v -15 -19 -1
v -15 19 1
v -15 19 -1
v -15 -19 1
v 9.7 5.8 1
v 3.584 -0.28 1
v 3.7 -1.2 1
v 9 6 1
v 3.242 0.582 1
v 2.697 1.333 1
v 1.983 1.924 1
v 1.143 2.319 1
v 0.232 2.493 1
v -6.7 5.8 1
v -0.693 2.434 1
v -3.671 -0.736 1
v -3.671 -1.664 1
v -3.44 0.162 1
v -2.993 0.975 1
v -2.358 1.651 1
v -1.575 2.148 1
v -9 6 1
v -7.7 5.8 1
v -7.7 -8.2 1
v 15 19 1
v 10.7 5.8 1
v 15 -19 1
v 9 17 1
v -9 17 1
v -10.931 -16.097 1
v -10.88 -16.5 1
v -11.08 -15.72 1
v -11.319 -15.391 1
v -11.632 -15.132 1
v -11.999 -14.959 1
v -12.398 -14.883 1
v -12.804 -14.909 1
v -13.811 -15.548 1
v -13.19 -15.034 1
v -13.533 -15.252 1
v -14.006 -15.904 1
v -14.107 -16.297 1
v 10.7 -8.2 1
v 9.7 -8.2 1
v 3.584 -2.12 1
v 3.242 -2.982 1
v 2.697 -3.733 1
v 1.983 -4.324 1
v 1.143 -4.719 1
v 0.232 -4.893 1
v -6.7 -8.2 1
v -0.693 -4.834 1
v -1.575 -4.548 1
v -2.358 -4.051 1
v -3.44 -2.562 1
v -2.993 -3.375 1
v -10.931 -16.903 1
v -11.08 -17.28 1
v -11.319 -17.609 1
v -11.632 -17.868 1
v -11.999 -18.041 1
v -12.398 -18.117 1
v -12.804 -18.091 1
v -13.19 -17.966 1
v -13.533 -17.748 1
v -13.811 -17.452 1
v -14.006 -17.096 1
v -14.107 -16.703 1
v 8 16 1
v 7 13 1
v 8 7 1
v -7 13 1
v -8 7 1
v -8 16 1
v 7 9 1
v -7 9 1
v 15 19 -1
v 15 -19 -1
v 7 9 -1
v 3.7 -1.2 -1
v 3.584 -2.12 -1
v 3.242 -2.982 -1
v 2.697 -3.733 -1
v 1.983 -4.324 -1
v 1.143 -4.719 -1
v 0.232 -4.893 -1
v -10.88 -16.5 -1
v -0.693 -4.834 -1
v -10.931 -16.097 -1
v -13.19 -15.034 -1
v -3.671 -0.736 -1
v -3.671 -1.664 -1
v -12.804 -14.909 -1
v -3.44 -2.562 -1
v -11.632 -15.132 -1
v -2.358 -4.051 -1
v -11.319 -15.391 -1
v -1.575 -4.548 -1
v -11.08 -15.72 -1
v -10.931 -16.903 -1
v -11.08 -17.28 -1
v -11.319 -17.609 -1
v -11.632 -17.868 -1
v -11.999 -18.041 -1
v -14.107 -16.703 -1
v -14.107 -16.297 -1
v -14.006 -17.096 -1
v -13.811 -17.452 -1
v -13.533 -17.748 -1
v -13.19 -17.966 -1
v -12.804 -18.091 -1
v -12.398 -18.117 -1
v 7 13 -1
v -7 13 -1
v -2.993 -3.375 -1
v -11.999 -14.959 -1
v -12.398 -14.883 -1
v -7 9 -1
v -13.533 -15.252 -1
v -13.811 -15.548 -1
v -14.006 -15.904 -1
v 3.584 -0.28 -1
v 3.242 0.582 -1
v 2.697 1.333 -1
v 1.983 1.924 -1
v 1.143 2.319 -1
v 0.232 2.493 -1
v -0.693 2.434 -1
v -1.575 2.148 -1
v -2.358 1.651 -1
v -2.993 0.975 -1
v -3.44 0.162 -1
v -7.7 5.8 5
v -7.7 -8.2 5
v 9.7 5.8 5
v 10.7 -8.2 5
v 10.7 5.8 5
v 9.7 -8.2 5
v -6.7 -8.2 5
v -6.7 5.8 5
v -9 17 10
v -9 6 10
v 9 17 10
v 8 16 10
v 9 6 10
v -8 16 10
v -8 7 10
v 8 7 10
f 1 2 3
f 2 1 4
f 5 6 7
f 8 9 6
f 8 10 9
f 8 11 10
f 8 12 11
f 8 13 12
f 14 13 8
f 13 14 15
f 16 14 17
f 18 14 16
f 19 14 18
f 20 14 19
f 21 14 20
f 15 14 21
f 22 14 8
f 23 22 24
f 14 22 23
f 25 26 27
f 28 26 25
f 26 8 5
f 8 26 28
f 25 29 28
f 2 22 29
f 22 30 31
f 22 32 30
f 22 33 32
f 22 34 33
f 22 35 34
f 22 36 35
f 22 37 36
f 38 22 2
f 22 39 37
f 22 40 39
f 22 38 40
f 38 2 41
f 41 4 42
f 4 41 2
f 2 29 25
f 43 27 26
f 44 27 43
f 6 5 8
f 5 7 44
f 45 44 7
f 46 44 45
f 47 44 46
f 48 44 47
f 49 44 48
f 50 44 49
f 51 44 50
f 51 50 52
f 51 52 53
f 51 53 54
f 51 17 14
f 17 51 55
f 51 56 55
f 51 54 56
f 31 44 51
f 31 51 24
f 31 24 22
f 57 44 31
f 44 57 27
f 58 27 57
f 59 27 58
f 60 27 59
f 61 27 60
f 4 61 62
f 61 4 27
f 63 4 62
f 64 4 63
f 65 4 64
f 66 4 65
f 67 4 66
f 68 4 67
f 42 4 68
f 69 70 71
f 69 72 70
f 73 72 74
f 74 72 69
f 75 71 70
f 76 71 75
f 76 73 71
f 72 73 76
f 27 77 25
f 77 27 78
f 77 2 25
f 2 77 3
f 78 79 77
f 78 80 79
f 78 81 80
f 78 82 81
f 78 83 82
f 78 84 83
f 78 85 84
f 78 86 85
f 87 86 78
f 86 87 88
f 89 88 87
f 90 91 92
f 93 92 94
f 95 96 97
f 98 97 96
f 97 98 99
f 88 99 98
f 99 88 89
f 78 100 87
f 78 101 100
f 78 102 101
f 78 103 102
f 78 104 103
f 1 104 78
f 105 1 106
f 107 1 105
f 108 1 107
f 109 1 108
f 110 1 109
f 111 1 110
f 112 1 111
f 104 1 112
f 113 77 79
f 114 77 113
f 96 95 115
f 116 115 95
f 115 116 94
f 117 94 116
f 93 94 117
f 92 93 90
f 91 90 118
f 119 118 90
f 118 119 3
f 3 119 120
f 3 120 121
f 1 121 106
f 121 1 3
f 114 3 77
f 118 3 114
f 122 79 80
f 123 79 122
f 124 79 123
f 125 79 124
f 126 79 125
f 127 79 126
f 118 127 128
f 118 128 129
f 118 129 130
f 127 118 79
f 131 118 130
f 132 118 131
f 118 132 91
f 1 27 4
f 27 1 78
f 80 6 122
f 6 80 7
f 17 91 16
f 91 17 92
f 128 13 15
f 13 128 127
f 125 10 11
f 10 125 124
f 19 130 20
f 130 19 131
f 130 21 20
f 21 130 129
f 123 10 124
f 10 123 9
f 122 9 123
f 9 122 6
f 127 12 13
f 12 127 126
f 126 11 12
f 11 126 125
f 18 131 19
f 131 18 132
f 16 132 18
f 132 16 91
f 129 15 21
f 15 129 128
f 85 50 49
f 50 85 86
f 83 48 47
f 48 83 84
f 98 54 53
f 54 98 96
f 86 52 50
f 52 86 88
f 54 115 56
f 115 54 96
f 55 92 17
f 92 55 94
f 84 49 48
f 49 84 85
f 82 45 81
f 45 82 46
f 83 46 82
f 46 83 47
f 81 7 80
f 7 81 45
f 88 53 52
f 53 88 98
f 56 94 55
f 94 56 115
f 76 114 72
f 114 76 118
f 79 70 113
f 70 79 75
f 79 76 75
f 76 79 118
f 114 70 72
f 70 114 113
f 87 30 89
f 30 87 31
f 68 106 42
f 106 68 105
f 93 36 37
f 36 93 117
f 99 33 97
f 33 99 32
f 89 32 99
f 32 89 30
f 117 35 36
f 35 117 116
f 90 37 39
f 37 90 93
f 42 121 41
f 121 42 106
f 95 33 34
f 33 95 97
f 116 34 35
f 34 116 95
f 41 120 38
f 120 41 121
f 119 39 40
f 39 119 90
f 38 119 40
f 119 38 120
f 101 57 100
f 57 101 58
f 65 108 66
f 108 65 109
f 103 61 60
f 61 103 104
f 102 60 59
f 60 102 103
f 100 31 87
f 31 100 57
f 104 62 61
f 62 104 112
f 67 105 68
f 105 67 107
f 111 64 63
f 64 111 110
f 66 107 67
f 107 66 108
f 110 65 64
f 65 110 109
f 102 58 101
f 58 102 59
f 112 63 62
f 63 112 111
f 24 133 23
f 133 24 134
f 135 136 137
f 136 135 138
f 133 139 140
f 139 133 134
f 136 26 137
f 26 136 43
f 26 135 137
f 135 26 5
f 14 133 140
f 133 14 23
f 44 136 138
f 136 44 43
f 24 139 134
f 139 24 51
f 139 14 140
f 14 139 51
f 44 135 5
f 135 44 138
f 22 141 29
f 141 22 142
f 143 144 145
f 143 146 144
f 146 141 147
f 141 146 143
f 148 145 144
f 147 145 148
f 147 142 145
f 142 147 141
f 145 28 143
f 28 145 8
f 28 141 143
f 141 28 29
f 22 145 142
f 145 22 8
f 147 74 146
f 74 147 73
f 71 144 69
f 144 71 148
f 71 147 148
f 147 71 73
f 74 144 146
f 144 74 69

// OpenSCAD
// octacon frontpanel
// alias openscad=~/Applications/OpenSCAD-2021.01-x86_64.AppImage
// openscad -o front_test.stl front_test.scad
// f3d front_test.stl

// panel size
pd=2.0;
pw=30.0;
pw2=pw/2.0;
pw4=pw/4.0;
ph=38.0;
ph2=ph/2.0;

dw4=pw4; // simplify to keep it centered

// encoder
// EC11 digital encoders
//ew=12;
//ewo=0;
//eh=12;
// Alpha dual wiper potentiometers
ew1=9.7;
ew2=6.7;
ew=ew1+ew2;
ewo=ew1-(ew/2.0); // shaft offset to center
eh=14.4;
er=3.7;  // shaft
em=-1.2; // eh/2 offset from lm

// leds
lw=14;
lh=4;
lm=11;

// support
sw=4;
sw2=sw/2.0;
sw4=sw/4.0;
esh=5;
esh2=esh/2.0;
eshx=esh+0.2;
lsh=10;
lsh2=lsh/2.0;
lshx=lsh+0.2;
lsg=3;
lsg2=lsg/2.0;

// M3 screw holes
m3r=1.5;
m3rx=1.62; // extra size to cover 3d print thickness
// on the corners put screw-holes with 1mm offset
m3sd=1+m3r;

// make it smooth
$fn=25;

// main body
difference() {
    cube([pw,ph,pd],center=true);

    // encoders
    // top row
    translate([0,em,0]) { 
        translate([-(pw4-dw4),0,0]) { cylinder(h=5,r=er, center=true); }
    }

    // leds
    // top row
    translate([0,lm,0]) { 
        translate([-(pw4-dw4),0,0]) { cube([lw,lh,5], center=true); }
    }

    // M3 holes (1 mm off the side)
    translate([-(pw2-m3sd),-(ph2-m3sd),0]) { cylinder(h=5,r=m3rx, center=true); }
   
}

// encoder  supports
module encoder_support() {
    difference() {
        cube([ew+sw2,(eh-0.4),esh], center=true);
        cube([ew,eh,eshx], center=true);
    }
}

translate([0,0,esh2]) {
    // top row
    translate([0,em,0]) { 
        translate([ewo-(pw4-dw4),0,0]) { encoder_support(); }
    }
}

// led shielding
module led_shield() {
    difference() {
        cube([lw+sw,(lh+lsg)+sw,lsh], center=true);
        cube([lw+sw2,(lh+lsg)+sw2,lshx], center=true);
    }
}

translate([0,0,lsh2]) {
    // top row
    translate([0,+(lm+lsg2-1),0]) {
        translate([-(pw4-dw4),0,0]) { led_shield(); }
    }    
}
